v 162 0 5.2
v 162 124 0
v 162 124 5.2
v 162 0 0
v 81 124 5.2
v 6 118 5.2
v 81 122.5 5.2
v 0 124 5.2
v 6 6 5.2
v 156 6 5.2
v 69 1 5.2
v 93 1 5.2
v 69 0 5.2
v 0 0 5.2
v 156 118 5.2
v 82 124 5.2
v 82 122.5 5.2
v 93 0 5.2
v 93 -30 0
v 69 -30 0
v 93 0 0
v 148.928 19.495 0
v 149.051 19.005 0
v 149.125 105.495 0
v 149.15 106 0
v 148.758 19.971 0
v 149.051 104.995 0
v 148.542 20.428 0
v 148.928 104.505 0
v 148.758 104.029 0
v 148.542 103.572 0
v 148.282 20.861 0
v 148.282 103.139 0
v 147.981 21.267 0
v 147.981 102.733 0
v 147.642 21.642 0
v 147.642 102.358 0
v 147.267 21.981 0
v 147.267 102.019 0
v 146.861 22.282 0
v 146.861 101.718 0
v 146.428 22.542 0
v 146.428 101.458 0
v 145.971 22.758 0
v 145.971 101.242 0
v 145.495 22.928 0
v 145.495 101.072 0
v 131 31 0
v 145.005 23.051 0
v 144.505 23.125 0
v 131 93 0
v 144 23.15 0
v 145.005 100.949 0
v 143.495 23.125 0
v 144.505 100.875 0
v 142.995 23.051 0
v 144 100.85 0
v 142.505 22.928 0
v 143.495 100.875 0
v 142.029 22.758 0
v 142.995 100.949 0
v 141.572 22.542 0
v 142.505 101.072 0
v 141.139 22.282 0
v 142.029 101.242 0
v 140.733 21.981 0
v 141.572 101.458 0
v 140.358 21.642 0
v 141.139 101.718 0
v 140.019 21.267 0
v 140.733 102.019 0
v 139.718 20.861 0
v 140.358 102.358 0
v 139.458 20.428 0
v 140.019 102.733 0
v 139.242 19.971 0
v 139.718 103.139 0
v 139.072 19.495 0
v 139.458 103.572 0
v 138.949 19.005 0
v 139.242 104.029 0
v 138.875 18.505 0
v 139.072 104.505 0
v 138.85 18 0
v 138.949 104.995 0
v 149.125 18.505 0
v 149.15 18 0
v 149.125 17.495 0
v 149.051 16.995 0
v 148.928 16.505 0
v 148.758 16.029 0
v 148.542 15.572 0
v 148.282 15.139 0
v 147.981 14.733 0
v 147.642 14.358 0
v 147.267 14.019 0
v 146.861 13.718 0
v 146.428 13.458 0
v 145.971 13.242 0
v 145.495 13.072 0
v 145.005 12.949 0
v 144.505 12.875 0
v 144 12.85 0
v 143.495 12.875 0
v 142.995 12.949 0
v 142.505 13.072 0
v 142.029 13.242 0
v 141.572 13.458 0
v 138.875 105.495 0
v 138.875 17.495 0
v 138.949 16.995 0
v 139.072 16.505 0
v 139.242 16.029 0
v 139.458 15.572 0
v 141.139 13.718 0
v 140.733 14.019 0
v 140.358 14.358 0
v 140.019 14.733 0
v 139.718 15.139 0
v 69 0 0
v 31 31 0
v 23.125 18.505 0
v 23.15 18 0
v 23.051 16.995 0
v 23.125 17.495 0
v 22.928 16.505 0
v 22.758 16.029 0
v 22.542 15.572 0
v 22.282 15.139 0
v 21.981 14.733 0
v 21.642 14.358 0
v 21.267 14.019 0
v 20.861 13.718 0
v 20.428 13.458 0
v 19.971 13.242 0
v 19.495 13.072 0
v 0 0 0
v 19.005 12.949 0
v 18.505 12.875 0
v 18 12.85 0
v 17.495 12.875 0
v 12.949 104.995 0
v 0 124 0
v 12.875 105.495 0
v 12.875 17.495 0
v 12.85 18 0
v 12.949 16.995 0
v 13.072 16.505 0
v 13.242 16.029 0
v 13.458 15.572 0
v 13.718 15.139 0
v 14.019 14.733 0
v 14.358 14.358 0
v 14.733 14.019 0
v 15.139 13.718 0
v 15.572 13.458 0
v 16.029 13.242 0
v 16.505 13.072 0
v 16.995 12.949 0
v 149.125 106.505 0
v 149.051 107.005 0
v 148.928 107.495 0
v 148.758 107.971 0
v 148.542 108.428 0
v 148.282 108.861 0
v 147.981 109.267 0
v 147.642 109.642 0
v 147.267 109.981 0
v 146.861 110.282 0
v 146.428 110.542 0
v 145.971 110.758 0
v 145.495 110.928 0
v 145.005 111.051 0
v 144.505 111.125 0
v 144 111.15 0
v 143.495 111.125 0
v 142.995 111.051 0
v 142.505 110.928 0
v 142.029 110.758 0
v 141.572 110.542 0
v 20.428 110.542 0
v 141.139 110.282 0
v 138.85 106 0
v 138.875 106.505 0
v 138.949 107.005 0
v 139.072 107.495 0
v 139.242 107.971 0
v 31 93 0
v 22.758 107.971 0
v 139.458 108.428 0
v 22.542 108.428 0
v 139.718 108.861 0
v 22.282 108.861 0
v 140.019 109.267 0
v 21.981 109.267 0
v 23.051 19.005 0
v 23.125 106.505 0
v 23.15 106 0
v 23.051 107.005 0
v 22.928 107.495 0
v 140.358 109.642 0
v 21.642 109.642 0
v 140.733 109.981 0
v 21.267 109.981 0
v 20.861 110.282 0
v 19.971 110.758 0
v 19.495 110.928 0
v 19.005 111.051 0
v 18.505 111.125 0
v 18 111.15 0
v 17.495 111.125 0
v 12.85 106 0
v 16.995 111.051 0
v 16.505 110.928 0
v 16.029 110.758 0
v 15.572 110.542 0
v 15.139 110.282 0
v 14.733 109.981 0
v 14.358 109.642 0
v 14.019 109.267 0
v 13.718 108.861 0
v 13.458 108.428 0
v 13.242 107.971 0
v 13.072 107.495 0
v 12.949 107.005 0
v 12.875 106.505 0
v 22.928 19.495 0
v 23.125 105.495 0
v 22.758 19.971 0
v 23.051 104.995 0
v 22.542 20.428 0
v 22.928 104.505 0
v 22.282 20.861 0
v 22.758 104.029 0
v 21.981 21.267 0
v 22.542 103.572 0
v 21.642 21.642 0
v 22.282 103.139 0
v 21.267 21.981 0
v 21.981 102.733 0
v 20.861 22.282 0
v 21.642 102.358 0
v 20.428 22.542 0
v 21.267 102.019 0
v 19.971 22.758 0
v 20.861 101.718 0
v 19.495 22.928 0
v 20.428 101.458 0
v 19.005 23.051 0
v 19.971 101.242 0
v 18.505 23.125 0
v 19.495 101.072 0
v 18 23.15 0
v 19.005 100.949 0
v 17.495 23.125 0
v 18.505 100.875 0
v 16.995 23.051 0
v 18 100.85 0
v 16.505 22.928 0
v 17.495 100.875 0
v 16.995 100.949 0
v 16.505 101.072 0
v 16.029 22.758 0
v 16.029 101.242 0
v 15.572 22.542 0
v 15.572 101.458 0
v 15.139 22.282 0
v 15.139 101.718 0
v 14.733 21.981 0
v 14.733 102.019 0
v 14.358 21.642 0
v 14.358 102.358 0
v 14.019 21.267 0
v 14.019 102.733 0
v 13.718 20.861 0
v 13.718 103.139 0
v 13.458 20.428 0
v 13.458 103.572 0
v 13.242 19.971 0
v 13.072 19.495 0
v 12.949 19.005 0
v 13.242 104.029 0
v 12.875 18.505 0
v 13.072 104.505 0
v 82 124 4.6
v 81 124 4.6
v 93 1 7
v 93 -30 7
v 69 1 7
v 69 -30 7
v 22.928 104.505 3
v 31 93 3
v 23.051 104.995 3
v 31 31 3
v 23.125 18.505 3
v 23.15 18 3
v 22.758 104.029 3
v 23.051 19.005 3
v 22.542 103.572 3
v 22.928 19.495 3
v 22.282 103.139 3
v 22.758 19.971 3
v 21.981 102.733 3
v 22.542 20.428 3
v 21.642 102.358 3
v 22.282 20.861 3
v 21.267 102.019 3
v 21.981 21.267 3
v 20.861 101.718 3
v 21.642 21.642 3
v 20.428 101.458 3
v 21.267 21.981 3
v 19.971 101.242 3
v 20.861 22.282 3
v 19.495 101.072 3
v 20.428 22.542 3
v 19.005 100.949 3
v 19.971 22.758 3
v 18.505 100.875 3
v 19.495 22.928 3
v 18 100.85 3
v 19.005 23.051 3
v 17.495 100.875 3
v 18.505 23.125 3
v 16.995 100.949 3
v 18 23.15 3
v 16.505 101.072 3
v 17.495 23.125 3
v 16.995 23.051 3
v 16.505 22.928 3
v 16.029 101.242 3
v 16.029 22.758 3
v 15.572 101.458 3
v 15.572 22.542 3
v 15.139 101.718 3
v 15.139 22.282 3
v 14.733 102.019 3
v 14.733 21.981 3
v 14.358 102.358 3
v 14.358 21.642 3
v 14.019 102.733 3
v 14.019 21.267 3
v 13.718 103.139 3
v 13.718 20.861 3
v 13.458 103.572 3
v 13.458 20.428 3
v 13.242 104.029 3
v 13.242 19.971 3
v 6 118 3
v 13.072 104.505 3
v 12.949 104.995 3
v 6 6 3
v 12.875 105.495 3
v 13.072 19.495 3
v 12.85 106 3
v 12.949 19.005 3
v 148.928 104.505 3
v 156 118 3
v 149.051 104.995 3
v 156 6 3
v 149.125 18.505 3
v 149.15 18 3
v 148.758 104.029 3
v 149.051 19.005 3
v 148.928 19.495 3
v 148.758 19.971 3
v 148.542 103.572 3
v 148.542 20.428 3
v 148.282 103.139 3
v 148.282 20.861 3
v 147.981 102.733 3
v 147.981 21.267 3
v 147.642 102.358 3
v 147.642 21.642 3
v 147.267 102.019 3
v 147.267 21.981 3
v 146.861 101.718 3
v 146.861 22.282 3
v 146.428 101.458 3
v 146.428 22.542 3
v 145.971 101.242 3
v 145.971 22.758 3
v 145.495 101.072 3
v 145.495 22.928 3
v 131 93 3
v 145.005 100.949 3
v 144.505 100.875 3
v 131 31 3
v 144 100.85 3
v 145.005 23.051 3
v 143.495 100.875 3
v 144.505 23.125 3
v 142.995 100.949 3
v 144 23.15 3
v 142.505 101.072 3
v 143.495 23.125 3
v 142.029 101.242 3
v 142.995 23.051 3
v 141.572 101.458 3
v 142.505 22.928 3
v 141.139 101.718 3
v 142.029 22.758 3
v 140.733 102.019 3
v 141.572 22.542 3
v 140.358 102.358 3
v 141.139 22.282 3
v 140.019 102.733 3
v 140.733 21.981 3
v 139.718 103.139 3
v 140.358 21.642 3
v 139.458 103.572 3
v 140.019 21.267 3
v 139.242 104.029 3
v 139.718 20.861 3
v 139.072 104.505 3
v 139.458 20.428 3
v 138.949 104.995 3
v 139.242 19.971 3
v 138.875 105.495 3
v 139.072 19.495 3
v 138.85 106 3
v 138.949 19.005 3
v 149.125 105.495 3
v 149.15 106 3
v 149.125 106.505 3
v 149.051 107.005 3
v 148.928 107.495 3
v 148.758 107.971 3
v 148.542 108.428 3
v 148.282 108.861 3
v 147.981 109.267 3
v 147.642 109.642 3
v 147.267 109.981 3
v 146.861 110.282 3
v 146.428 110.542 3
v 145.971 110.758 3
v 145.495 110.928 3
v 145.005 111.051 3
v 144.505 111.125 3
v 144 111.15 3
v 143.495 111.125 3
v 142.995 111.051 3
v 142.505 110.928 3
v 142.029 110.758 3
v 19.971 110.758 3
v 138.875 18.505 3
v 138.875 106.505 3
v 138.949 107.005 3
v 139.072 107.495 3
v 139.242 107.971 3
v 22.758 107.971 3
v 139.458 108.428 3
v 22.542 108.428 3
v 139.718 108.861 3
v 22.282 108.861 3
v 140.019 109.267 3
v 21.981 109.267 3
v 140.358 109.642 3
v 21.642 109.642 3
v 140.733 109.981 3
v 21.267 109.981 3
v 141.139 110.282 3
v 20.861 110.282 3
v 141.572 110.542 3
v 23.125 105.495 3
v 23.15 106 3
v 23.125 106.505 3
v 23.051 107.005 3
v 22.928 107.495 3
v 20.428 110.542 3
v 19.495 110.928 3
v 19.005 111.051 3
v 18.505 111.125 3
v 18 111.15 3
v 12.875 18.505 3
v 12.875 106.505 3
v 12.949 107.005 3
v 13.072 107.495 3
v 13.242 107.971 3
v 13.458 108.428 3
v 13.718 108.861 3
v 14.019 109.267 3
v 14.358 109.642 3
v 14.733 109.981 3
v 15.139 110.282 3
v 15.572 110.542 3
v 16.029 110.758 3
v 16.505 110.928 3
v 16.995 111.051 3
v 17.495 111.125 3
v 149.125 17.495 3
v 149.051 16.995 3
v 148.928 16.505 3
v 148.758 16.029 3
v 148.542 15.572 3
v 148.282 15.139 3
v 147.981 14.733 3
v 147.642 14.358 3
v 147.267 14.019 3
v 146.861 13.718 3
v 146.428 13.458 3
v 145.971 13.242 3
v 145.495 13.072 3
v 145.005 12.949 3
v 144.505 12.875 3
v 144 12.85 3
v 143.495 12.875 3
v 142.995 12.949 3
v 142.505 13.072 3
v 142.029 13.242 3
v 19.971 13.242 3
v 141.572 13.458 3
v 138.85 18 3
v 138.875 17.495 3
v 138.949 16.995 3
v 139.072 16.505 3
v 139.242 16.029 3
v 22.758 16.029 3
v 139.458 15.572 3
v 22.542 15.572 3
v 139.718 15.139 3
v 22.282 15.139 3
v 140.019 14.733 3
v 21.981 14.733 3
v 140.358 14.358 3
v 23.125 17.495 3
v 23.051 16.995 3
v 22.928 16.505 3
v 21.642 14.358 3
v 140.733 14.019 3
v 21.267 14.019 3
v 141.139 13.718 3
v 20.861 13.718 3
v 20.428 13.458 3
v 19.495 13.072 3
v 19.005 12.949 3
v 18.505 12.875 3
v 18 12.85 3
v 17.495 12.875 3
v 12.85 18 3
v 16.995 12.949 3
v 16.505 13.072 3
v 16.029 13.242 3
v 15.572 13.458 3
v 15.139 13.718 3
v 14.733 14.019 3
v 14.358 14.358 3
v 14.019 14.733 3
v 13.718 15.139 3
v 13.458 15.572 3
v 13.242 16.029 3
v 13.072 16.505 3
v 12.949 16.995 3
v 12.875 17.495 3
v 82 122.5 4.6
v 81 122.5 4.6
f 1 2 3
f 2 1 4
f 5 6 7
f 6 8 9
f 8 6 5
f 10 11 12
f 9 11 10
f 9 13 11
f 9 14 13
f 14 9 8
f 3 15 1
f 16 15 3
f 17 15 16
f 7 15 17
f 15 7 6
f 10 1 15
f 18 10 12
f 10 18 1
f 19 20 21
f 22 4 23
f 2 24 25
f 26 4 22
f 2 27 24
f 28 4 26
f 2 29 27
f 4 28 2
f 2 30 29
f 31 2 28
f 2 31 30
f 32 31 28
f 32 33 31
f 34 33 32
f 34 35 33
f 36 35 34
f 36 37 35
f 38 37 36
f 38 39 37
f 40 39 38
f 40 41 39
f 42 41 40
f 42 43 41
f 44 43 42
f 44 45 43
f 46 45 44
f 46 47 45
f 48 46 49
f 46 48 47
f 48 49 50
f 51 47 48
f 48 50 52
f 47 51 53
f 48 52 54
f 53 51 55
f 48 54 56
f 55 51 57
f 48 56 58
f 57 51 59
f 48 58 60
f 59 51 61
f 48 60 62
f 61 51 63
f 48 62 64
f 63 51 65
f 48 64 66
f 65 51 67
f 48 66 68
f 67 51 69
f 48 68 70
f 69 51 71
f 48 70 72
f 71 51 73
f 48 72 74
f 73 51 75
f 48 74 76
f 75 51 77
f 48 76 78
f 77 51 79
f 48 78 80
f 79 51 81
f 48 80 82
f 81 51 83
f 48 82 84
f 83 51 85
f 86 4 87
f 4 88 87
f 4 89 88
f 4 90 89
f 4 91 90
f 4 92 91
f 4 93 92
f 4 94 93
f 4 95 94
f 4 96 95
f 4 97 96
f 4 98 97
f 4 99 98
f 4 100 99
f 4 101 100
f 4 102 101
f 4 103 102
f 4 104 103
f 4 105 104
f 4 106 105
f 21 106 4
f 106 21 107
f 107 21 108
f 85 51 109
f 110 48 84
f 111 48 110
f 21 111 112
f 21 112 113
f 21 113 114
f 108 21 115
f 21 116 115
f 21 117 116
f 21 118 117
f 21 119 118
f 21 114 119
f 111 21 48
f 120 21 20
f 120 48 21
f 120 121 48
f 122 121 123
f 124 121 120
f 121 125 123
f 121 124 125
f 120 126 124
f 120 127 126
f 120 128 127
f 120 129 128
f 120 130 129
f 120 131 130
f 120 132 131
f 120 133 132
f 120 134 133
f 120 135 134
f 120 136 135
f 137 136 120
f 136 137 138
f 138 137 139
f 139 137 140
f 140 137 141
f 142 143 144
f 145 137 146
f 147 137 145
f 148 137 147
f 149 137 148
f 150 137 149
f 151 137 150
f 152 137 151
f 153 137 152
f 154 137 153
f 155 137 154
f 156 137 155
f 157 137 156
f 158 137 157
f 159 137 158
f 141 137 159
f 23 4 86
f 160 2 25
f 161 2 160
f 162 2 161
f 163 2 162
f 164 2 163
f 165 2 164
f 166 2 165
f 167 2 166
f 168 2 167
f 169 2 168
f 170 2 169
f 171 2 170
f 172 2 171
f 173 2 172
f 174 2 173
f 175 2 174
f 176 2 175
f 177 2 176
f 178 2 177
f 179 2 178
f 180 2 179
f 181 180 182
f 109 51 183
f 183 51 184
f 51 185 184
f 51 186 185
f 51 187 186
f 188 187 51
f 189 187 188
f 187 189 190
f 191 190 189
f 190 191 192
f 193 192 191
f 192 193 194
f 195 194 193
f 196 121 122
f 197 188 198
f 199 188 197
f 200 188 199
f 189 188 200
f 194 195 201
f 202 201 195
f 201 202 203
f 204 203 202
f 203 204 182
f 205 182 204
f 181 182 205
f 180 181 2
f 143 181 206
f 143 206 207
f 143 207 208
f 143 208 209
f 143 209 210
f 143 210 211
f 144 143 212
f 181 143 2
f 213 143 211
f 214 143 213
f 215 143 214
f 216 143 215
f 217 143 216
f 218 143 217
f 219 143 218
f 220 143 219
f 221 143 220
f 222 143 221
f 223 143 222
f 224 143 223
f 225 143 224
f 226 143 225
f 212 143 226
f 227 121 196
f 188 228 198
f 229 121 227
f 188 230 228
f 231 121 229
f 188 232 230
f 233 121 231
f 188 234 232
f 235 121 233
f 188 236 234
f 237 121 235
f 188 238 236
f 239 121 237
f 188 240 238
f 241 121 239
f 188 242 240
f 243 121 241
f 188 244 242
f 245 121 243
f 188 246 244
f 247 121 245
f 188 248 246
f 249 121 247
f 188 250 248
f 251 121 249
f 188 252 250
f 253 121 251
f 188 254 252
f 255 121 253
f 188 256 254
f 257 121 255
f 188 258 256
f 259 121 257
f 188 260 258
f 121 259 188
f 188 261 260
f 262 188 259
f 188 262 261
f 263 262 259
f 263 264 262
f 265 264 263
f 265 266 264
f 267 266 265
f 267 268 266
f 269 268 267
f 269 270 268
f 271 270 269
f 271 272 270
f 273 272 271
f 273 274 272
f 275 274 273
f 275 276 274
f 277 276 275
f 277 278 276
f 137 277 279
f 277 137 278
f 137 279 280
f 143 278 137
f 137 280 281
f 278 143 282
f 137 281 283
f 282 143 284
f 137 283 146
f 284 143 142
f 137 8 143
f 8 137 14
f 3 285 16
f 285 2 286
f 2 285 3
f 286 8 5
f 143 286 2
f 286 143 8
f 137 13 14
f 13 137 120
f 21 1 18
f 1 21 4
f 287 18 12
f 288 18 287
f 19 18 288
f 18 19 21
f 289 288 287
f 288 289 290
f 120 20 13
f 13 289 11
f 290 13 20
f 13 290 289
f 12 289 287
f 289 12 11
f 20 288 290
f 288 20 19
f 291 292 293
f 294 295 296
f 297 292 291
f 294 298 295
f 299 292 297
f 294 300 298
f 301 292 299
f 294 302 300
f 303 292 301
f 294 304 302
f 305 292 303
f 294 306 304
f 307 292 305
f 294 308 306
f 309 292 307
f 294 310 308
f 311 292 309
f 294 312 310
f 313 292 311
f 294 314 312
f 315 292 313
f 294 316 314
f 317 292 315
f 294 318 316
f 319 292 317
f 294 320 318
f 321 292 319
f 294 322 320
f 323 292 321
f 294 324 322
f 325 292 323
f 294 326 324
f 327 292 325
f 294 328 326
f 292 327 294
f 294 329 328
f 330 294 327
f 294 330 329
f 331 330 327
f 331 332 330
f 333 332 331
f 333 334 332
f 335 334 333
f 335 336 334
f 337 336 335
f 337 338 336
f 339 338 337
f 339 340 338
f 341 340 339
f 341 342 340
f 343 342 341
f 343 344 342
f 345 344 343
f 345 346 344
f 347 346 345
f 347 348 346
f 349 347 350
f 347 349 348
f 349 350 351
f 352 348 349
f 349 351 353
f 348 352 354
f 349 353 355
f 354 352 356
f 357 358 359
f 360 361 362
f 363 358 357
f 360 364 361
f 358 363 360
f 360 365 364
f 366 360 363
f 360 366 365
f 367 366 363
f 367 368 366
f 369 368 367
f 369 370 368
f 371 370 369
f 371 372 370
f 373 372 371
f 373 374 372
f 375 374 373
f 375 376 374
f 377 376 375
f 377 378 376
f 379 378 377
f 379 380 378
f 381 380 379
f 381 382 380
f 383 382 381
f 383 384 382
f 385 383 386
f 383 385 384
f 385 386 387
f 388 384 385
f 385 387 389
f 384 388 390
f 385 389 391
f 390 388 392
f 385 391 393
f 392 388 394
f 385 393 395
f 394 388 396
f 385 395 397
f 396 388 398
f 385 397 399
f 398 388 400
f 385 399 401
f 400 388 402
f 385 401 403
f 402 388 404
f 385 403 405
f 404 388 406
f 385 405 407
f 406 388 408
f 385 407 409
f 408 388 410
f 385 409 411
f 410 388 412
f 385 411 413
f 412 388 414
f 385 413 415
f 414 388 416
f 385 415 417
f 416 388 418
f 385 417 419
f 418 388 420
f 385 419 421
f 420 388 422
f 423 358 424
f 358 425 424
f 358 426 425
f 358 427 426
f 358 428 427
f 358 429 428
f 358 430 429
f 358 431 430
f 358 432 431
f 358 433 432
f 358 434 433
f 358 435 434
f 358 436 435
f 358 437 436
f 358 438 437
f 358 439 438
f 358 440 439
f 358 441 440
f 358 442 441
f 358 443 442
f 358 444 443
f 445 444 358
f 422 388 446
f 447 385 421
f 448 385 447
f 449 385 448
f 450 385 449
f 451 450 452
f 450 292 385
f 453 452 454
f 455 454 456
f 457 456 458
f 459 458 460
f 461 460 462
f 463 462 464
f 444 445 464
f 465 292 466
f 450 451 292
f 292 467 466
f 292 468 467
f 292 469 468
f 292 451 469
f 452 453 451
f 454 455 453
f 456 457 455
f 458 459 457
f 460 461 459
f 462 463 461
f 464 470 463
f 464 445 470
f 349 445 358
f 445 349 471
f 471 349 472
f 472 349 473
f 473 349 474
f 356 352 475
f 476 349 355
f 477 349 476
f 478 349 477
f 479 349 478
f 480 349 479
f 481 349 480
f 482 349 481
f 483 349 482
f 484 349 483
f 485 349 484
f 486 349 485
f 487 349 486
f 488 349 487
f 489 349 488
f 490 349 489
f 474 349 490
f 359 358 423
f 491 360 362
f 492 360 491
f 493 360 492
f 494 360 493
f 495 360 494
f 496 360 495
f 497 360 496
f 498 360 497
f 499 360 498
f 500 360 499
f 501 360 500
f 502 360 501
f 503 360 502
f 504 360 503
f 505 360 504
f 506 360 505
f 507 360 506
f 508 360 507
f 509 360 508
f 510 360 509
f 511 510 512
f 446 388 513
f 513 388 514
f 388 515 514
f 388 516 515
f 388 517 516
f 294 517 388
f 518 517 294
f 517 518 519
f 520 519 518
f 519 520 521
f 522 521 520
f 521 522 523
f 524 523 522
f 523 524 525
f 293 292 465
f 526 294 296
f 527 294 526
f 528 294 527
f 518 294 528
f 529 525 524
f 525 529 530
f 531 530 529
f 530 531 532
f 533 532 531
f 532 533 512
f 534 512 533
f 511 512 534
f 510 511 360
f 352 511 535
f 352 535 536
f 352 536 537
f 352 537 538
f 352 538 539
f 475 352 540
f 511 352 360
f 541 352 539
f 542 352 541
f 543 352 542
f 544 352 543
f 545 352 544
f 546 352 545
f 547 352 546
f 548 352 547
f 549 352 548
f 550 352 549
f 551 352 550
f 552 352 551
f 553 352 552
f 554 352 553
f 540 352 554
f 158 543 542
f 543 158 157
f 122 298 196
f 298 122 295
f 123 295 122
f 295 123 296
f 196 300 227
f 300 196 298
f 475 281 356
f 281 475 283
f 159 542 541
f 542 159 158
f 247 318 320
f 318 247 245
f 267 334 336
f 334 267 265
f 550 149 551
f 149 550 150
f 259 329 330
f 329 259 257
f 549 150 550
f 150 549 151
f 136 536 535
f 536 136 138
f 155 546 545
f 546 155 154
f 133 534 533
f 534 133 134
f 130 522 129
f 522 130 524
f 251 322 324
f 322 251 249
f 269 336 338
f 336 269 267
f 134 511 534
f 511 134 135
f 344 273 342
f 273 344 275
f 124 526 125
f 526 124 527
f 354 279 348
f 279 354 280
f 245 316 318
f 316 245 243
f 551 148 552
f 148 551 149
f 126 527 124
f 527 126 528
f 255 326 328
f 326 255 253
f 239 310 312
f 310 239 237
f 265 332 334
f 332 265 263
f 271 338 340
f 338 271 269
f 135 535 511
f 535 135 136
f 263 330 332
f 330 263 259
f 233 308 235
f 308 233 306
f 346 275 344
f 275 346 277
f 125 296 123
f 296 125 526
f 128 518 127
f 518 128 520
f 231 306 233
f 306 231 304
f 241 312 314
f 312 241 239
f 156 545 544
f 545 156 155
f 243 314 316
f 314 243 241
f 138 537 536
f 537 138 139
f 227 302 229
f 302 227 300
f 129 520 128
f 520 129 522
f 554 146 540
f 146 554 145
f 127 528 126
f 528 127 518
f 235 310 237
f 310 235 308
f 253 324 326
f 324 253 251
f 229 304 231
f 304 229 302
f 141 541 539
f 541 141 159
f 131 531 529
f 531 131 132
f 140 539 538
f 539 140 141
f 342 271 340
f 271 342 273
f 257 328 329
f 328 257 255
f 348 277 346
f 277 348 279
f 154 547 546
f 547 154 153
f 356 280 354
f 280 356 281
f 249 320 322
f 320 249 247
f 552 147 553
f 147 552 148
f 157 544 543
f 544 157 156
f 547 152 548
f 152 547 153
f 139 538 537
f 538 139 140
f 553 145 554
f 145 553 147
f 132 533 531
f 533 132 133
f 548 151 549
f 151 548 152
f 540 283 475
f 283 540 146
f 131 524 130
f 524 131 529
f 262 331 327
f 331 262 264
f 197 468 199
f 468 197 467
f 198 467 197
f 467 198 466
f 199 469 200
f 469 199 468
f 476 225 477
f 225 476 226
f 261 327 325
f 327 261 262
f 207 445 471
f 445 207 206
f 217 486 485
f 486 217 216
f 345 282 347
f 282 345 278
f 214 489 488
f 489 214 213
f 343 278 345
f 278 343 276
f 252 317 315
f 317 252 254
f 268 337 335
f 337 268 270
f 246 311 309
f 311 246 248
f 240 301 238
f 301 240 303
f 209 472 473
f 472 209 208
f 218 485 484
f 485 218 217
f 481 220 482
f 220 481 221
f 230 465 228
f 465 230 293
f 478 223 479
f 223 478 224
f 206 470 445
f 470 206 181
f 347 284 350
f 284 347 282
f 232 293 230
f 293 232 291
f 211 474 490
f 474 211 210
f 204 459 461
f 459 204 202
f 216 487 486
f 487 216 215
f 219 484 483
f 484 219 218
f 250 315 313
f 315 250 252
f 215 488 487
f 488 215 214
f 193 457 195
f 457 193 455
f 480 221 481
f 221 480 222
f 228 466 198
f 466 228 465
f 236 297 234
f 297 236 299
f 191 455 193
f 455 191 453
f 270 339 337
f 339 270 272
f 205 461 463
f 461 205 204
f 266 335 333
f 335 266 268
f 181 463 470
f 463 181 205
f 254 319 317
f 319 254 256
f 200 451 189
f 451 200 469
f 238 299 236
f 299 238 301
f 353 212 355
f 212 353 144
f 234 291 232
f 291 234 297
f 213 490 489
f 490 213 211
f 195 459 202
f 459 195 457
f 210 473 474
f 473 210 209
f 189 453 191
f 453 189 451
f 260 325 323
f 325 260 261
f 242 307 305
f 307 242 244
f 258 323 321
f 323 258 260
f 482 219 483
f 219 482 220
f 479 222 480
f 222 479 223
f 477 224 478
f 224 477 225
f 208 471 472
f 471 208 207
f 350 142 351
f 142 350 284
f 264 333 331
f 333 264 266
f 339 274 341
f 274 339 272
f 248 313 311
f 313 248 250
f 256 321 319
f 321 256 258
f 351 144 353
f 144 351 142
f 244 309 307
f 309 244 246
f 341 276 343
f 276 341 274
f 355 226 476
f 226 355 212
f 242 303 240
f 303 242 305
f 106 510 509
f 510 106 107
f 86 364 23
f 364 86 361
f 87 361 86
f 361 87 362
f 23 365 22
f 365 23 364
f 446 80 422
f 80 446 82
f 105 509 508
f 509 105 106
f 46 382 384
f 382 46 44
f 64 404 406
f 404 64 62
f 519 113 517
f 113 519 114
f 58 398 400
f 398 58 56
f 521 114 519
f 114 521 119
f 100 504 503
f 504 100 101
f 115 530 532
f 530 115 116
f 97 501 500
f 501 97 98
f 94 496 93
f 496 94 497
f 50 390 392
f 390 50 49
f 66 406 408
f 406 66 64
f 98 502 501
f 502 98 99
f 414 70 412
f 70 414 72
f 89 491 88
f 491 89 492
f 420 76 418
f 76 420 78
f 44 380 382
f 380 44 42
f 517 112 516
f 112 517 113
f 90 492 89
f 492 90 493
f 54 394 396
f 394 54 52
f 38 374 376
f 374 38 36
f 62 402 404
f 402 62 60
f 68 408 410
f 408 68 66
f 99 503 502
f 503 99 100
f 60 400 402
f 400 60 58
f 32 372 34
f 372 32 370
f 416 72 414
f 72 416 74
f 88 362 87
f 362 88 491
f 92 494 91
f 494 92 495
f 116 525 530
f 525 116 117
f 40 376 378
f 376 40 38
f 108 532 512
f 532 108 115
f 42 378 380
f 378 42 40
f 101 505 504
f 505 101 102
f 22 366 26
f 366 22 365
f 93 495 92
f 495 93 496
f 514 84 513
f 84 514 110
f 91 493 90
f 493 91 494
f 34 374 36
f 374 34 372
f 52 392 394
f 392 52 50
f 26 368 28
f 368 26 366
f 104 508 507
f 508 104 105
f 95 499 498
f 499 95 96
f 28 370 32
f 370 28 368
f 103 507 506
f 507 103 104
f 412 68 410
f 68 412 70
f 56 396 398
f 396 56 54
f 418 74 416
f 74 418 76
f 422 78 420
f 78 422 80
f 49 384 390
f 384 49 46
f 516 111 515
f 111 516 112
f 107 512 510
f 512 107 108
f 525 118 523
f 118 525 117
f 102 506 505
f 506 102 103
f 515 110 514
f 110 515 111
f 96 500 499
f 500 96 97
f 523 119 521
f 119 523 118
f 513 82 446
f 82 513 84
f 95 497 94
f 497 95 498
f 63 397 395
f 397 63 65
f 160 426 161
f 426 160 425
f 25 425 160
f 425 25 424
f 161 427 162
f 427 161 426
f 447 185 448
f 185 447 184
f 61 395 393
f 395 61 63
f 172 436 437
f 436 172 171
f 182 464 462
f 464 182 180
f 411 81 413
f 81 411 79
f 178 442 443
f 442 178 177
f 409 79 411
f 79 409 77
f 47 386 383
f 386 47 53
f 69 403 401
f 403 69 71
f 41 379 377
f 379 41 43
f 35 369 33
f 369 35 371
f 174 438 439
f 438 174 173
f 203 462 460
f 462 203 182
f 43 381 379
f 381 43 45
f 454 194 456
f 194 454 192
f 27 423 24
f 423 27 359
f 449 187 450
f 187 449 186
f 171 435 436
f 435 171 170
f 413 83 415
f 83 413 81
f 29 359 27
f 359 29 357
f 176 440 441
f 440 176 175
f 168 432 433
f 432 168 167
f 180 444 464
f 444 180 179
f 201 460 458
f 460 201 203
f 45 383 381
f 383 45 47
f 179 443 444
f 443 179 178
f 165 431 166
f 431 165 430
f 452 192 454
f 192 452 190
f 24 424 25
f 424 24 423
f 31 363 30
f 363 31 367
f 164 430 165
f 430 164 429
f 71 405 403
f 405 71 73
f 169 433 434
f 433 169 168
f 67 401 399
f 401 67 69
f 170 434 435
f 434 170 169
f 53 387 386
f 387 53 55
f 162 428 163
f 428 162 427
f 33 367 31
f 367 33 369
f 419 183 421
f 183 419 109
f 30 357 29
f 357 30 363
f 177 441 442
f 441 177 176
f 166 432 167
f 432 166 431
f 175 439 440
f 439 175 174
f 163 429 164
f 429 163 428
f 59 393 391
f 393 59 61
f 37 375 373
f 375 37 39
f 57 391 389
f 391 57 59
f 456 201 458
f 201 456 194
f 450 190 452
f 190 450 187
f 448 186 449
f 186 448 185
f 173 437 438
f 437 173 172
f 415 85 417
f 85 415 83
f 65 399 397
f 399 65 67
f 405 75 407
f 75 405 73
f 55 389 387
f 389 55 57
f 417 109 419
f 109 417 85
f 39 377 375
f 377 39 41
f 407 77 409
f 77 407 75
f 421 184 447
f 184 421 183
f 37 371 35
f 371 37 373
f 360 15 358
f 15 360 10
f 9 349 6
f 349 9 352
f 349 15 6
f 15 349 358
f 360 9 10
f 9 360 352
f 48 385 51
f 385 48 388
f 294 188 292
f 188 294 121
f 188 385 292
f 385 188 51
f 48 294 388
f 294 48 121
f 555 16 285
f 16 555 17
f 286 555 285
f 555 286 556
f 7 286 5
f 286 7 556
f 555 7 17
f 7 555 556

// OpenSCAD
// file: common.scad
// Shared helpers. Units: mm. Print in PETG/PLA, 0.2 mm layers, 4 perimeters, 40 % infill.
$fn = 64;
NUT_14_AF = 11.11;   // 1/4"-20 hex nut across flats
NUT_14_H  = 5.6;

module hex(af, h) { cylinder(d = af / cos(30), h = h, $fn = 6); }

module label(t, size = 4, depth = 0.6) {
    linear_extrude(depth) text(t, size = size, halign = "center", valign = "center", font = "Liberation Sans:style=Bold");
}

// 1/4"-20 tripod socket: captive nut from inside + bolt hole, opening at z = 0 (downwards)
module tripod_socket(depth = 12) {
    translate([0, 0, -0.01]) cylinder(d = 6.8, h = depth + 0.02);
    translate([0, 0, 3]) hex(NUT_14_AF + 0.3, NUT_14_H + 0.4);
}
// main file
// Magnetic target paddle: holds a printed ChArUco card (glued to 2 mm glass / aluminium composite)
// flat in the specimen plane. Magnets (10 × 3 mm) stick to steel grips of the test machine.
// Default pocket fits CH-M12 (132 × 96 mm board + margin). Change card size for other targets.
include <common.scad>

card = [150, 112];    // card size incl. white margin
card_t = 2.2;         // glass/ACP thickness
rim = 6; plate = 3;
magnet_d = 10.3; magnet_h = 3.2;

difference() {
    union() {
        cube([card[0] + 2 * rim, card[1] + 2 * rim, plate + card_t]);
        translate([card[0] / 2 + rim - 12, -30, 0]) cube([24, 31, plate + 4]);        // handle
    }
    // card pocket (card top flush with the rim)
    translate([rim, rim, plate]) cube([card[0], card[1], card_t + 1]);
    // finger notches to remove the card
    for (x = [rim + 20, card[0] + rim - 20]) translate([x, rim + card[1] / 2, plate]) cylinder(d = 16, h = 10);
    // magnet pockets from the back
    for (x = [rim + 12, card[0] + rim - 12]) for (y = [rim + 12, card[1] + rim - 12])
        translate([x, y, -0.01]) cylinder(d = magnet_d, h = magnet_h);
    // lightening window in the back plate (glass stays supported by the rim)
    translate([rim + 25, rim + 25, -1]) cube([card[0] - 50, card[1] - 50, plate + 2]);
    // reference edge marks: align the board X axis with the loading axis
    translate([card[0] / 2 + rim, card[1] + 2 * rim - 1.5, plate + card_t - 0.6]) cube([1, 3, 1]);
}
